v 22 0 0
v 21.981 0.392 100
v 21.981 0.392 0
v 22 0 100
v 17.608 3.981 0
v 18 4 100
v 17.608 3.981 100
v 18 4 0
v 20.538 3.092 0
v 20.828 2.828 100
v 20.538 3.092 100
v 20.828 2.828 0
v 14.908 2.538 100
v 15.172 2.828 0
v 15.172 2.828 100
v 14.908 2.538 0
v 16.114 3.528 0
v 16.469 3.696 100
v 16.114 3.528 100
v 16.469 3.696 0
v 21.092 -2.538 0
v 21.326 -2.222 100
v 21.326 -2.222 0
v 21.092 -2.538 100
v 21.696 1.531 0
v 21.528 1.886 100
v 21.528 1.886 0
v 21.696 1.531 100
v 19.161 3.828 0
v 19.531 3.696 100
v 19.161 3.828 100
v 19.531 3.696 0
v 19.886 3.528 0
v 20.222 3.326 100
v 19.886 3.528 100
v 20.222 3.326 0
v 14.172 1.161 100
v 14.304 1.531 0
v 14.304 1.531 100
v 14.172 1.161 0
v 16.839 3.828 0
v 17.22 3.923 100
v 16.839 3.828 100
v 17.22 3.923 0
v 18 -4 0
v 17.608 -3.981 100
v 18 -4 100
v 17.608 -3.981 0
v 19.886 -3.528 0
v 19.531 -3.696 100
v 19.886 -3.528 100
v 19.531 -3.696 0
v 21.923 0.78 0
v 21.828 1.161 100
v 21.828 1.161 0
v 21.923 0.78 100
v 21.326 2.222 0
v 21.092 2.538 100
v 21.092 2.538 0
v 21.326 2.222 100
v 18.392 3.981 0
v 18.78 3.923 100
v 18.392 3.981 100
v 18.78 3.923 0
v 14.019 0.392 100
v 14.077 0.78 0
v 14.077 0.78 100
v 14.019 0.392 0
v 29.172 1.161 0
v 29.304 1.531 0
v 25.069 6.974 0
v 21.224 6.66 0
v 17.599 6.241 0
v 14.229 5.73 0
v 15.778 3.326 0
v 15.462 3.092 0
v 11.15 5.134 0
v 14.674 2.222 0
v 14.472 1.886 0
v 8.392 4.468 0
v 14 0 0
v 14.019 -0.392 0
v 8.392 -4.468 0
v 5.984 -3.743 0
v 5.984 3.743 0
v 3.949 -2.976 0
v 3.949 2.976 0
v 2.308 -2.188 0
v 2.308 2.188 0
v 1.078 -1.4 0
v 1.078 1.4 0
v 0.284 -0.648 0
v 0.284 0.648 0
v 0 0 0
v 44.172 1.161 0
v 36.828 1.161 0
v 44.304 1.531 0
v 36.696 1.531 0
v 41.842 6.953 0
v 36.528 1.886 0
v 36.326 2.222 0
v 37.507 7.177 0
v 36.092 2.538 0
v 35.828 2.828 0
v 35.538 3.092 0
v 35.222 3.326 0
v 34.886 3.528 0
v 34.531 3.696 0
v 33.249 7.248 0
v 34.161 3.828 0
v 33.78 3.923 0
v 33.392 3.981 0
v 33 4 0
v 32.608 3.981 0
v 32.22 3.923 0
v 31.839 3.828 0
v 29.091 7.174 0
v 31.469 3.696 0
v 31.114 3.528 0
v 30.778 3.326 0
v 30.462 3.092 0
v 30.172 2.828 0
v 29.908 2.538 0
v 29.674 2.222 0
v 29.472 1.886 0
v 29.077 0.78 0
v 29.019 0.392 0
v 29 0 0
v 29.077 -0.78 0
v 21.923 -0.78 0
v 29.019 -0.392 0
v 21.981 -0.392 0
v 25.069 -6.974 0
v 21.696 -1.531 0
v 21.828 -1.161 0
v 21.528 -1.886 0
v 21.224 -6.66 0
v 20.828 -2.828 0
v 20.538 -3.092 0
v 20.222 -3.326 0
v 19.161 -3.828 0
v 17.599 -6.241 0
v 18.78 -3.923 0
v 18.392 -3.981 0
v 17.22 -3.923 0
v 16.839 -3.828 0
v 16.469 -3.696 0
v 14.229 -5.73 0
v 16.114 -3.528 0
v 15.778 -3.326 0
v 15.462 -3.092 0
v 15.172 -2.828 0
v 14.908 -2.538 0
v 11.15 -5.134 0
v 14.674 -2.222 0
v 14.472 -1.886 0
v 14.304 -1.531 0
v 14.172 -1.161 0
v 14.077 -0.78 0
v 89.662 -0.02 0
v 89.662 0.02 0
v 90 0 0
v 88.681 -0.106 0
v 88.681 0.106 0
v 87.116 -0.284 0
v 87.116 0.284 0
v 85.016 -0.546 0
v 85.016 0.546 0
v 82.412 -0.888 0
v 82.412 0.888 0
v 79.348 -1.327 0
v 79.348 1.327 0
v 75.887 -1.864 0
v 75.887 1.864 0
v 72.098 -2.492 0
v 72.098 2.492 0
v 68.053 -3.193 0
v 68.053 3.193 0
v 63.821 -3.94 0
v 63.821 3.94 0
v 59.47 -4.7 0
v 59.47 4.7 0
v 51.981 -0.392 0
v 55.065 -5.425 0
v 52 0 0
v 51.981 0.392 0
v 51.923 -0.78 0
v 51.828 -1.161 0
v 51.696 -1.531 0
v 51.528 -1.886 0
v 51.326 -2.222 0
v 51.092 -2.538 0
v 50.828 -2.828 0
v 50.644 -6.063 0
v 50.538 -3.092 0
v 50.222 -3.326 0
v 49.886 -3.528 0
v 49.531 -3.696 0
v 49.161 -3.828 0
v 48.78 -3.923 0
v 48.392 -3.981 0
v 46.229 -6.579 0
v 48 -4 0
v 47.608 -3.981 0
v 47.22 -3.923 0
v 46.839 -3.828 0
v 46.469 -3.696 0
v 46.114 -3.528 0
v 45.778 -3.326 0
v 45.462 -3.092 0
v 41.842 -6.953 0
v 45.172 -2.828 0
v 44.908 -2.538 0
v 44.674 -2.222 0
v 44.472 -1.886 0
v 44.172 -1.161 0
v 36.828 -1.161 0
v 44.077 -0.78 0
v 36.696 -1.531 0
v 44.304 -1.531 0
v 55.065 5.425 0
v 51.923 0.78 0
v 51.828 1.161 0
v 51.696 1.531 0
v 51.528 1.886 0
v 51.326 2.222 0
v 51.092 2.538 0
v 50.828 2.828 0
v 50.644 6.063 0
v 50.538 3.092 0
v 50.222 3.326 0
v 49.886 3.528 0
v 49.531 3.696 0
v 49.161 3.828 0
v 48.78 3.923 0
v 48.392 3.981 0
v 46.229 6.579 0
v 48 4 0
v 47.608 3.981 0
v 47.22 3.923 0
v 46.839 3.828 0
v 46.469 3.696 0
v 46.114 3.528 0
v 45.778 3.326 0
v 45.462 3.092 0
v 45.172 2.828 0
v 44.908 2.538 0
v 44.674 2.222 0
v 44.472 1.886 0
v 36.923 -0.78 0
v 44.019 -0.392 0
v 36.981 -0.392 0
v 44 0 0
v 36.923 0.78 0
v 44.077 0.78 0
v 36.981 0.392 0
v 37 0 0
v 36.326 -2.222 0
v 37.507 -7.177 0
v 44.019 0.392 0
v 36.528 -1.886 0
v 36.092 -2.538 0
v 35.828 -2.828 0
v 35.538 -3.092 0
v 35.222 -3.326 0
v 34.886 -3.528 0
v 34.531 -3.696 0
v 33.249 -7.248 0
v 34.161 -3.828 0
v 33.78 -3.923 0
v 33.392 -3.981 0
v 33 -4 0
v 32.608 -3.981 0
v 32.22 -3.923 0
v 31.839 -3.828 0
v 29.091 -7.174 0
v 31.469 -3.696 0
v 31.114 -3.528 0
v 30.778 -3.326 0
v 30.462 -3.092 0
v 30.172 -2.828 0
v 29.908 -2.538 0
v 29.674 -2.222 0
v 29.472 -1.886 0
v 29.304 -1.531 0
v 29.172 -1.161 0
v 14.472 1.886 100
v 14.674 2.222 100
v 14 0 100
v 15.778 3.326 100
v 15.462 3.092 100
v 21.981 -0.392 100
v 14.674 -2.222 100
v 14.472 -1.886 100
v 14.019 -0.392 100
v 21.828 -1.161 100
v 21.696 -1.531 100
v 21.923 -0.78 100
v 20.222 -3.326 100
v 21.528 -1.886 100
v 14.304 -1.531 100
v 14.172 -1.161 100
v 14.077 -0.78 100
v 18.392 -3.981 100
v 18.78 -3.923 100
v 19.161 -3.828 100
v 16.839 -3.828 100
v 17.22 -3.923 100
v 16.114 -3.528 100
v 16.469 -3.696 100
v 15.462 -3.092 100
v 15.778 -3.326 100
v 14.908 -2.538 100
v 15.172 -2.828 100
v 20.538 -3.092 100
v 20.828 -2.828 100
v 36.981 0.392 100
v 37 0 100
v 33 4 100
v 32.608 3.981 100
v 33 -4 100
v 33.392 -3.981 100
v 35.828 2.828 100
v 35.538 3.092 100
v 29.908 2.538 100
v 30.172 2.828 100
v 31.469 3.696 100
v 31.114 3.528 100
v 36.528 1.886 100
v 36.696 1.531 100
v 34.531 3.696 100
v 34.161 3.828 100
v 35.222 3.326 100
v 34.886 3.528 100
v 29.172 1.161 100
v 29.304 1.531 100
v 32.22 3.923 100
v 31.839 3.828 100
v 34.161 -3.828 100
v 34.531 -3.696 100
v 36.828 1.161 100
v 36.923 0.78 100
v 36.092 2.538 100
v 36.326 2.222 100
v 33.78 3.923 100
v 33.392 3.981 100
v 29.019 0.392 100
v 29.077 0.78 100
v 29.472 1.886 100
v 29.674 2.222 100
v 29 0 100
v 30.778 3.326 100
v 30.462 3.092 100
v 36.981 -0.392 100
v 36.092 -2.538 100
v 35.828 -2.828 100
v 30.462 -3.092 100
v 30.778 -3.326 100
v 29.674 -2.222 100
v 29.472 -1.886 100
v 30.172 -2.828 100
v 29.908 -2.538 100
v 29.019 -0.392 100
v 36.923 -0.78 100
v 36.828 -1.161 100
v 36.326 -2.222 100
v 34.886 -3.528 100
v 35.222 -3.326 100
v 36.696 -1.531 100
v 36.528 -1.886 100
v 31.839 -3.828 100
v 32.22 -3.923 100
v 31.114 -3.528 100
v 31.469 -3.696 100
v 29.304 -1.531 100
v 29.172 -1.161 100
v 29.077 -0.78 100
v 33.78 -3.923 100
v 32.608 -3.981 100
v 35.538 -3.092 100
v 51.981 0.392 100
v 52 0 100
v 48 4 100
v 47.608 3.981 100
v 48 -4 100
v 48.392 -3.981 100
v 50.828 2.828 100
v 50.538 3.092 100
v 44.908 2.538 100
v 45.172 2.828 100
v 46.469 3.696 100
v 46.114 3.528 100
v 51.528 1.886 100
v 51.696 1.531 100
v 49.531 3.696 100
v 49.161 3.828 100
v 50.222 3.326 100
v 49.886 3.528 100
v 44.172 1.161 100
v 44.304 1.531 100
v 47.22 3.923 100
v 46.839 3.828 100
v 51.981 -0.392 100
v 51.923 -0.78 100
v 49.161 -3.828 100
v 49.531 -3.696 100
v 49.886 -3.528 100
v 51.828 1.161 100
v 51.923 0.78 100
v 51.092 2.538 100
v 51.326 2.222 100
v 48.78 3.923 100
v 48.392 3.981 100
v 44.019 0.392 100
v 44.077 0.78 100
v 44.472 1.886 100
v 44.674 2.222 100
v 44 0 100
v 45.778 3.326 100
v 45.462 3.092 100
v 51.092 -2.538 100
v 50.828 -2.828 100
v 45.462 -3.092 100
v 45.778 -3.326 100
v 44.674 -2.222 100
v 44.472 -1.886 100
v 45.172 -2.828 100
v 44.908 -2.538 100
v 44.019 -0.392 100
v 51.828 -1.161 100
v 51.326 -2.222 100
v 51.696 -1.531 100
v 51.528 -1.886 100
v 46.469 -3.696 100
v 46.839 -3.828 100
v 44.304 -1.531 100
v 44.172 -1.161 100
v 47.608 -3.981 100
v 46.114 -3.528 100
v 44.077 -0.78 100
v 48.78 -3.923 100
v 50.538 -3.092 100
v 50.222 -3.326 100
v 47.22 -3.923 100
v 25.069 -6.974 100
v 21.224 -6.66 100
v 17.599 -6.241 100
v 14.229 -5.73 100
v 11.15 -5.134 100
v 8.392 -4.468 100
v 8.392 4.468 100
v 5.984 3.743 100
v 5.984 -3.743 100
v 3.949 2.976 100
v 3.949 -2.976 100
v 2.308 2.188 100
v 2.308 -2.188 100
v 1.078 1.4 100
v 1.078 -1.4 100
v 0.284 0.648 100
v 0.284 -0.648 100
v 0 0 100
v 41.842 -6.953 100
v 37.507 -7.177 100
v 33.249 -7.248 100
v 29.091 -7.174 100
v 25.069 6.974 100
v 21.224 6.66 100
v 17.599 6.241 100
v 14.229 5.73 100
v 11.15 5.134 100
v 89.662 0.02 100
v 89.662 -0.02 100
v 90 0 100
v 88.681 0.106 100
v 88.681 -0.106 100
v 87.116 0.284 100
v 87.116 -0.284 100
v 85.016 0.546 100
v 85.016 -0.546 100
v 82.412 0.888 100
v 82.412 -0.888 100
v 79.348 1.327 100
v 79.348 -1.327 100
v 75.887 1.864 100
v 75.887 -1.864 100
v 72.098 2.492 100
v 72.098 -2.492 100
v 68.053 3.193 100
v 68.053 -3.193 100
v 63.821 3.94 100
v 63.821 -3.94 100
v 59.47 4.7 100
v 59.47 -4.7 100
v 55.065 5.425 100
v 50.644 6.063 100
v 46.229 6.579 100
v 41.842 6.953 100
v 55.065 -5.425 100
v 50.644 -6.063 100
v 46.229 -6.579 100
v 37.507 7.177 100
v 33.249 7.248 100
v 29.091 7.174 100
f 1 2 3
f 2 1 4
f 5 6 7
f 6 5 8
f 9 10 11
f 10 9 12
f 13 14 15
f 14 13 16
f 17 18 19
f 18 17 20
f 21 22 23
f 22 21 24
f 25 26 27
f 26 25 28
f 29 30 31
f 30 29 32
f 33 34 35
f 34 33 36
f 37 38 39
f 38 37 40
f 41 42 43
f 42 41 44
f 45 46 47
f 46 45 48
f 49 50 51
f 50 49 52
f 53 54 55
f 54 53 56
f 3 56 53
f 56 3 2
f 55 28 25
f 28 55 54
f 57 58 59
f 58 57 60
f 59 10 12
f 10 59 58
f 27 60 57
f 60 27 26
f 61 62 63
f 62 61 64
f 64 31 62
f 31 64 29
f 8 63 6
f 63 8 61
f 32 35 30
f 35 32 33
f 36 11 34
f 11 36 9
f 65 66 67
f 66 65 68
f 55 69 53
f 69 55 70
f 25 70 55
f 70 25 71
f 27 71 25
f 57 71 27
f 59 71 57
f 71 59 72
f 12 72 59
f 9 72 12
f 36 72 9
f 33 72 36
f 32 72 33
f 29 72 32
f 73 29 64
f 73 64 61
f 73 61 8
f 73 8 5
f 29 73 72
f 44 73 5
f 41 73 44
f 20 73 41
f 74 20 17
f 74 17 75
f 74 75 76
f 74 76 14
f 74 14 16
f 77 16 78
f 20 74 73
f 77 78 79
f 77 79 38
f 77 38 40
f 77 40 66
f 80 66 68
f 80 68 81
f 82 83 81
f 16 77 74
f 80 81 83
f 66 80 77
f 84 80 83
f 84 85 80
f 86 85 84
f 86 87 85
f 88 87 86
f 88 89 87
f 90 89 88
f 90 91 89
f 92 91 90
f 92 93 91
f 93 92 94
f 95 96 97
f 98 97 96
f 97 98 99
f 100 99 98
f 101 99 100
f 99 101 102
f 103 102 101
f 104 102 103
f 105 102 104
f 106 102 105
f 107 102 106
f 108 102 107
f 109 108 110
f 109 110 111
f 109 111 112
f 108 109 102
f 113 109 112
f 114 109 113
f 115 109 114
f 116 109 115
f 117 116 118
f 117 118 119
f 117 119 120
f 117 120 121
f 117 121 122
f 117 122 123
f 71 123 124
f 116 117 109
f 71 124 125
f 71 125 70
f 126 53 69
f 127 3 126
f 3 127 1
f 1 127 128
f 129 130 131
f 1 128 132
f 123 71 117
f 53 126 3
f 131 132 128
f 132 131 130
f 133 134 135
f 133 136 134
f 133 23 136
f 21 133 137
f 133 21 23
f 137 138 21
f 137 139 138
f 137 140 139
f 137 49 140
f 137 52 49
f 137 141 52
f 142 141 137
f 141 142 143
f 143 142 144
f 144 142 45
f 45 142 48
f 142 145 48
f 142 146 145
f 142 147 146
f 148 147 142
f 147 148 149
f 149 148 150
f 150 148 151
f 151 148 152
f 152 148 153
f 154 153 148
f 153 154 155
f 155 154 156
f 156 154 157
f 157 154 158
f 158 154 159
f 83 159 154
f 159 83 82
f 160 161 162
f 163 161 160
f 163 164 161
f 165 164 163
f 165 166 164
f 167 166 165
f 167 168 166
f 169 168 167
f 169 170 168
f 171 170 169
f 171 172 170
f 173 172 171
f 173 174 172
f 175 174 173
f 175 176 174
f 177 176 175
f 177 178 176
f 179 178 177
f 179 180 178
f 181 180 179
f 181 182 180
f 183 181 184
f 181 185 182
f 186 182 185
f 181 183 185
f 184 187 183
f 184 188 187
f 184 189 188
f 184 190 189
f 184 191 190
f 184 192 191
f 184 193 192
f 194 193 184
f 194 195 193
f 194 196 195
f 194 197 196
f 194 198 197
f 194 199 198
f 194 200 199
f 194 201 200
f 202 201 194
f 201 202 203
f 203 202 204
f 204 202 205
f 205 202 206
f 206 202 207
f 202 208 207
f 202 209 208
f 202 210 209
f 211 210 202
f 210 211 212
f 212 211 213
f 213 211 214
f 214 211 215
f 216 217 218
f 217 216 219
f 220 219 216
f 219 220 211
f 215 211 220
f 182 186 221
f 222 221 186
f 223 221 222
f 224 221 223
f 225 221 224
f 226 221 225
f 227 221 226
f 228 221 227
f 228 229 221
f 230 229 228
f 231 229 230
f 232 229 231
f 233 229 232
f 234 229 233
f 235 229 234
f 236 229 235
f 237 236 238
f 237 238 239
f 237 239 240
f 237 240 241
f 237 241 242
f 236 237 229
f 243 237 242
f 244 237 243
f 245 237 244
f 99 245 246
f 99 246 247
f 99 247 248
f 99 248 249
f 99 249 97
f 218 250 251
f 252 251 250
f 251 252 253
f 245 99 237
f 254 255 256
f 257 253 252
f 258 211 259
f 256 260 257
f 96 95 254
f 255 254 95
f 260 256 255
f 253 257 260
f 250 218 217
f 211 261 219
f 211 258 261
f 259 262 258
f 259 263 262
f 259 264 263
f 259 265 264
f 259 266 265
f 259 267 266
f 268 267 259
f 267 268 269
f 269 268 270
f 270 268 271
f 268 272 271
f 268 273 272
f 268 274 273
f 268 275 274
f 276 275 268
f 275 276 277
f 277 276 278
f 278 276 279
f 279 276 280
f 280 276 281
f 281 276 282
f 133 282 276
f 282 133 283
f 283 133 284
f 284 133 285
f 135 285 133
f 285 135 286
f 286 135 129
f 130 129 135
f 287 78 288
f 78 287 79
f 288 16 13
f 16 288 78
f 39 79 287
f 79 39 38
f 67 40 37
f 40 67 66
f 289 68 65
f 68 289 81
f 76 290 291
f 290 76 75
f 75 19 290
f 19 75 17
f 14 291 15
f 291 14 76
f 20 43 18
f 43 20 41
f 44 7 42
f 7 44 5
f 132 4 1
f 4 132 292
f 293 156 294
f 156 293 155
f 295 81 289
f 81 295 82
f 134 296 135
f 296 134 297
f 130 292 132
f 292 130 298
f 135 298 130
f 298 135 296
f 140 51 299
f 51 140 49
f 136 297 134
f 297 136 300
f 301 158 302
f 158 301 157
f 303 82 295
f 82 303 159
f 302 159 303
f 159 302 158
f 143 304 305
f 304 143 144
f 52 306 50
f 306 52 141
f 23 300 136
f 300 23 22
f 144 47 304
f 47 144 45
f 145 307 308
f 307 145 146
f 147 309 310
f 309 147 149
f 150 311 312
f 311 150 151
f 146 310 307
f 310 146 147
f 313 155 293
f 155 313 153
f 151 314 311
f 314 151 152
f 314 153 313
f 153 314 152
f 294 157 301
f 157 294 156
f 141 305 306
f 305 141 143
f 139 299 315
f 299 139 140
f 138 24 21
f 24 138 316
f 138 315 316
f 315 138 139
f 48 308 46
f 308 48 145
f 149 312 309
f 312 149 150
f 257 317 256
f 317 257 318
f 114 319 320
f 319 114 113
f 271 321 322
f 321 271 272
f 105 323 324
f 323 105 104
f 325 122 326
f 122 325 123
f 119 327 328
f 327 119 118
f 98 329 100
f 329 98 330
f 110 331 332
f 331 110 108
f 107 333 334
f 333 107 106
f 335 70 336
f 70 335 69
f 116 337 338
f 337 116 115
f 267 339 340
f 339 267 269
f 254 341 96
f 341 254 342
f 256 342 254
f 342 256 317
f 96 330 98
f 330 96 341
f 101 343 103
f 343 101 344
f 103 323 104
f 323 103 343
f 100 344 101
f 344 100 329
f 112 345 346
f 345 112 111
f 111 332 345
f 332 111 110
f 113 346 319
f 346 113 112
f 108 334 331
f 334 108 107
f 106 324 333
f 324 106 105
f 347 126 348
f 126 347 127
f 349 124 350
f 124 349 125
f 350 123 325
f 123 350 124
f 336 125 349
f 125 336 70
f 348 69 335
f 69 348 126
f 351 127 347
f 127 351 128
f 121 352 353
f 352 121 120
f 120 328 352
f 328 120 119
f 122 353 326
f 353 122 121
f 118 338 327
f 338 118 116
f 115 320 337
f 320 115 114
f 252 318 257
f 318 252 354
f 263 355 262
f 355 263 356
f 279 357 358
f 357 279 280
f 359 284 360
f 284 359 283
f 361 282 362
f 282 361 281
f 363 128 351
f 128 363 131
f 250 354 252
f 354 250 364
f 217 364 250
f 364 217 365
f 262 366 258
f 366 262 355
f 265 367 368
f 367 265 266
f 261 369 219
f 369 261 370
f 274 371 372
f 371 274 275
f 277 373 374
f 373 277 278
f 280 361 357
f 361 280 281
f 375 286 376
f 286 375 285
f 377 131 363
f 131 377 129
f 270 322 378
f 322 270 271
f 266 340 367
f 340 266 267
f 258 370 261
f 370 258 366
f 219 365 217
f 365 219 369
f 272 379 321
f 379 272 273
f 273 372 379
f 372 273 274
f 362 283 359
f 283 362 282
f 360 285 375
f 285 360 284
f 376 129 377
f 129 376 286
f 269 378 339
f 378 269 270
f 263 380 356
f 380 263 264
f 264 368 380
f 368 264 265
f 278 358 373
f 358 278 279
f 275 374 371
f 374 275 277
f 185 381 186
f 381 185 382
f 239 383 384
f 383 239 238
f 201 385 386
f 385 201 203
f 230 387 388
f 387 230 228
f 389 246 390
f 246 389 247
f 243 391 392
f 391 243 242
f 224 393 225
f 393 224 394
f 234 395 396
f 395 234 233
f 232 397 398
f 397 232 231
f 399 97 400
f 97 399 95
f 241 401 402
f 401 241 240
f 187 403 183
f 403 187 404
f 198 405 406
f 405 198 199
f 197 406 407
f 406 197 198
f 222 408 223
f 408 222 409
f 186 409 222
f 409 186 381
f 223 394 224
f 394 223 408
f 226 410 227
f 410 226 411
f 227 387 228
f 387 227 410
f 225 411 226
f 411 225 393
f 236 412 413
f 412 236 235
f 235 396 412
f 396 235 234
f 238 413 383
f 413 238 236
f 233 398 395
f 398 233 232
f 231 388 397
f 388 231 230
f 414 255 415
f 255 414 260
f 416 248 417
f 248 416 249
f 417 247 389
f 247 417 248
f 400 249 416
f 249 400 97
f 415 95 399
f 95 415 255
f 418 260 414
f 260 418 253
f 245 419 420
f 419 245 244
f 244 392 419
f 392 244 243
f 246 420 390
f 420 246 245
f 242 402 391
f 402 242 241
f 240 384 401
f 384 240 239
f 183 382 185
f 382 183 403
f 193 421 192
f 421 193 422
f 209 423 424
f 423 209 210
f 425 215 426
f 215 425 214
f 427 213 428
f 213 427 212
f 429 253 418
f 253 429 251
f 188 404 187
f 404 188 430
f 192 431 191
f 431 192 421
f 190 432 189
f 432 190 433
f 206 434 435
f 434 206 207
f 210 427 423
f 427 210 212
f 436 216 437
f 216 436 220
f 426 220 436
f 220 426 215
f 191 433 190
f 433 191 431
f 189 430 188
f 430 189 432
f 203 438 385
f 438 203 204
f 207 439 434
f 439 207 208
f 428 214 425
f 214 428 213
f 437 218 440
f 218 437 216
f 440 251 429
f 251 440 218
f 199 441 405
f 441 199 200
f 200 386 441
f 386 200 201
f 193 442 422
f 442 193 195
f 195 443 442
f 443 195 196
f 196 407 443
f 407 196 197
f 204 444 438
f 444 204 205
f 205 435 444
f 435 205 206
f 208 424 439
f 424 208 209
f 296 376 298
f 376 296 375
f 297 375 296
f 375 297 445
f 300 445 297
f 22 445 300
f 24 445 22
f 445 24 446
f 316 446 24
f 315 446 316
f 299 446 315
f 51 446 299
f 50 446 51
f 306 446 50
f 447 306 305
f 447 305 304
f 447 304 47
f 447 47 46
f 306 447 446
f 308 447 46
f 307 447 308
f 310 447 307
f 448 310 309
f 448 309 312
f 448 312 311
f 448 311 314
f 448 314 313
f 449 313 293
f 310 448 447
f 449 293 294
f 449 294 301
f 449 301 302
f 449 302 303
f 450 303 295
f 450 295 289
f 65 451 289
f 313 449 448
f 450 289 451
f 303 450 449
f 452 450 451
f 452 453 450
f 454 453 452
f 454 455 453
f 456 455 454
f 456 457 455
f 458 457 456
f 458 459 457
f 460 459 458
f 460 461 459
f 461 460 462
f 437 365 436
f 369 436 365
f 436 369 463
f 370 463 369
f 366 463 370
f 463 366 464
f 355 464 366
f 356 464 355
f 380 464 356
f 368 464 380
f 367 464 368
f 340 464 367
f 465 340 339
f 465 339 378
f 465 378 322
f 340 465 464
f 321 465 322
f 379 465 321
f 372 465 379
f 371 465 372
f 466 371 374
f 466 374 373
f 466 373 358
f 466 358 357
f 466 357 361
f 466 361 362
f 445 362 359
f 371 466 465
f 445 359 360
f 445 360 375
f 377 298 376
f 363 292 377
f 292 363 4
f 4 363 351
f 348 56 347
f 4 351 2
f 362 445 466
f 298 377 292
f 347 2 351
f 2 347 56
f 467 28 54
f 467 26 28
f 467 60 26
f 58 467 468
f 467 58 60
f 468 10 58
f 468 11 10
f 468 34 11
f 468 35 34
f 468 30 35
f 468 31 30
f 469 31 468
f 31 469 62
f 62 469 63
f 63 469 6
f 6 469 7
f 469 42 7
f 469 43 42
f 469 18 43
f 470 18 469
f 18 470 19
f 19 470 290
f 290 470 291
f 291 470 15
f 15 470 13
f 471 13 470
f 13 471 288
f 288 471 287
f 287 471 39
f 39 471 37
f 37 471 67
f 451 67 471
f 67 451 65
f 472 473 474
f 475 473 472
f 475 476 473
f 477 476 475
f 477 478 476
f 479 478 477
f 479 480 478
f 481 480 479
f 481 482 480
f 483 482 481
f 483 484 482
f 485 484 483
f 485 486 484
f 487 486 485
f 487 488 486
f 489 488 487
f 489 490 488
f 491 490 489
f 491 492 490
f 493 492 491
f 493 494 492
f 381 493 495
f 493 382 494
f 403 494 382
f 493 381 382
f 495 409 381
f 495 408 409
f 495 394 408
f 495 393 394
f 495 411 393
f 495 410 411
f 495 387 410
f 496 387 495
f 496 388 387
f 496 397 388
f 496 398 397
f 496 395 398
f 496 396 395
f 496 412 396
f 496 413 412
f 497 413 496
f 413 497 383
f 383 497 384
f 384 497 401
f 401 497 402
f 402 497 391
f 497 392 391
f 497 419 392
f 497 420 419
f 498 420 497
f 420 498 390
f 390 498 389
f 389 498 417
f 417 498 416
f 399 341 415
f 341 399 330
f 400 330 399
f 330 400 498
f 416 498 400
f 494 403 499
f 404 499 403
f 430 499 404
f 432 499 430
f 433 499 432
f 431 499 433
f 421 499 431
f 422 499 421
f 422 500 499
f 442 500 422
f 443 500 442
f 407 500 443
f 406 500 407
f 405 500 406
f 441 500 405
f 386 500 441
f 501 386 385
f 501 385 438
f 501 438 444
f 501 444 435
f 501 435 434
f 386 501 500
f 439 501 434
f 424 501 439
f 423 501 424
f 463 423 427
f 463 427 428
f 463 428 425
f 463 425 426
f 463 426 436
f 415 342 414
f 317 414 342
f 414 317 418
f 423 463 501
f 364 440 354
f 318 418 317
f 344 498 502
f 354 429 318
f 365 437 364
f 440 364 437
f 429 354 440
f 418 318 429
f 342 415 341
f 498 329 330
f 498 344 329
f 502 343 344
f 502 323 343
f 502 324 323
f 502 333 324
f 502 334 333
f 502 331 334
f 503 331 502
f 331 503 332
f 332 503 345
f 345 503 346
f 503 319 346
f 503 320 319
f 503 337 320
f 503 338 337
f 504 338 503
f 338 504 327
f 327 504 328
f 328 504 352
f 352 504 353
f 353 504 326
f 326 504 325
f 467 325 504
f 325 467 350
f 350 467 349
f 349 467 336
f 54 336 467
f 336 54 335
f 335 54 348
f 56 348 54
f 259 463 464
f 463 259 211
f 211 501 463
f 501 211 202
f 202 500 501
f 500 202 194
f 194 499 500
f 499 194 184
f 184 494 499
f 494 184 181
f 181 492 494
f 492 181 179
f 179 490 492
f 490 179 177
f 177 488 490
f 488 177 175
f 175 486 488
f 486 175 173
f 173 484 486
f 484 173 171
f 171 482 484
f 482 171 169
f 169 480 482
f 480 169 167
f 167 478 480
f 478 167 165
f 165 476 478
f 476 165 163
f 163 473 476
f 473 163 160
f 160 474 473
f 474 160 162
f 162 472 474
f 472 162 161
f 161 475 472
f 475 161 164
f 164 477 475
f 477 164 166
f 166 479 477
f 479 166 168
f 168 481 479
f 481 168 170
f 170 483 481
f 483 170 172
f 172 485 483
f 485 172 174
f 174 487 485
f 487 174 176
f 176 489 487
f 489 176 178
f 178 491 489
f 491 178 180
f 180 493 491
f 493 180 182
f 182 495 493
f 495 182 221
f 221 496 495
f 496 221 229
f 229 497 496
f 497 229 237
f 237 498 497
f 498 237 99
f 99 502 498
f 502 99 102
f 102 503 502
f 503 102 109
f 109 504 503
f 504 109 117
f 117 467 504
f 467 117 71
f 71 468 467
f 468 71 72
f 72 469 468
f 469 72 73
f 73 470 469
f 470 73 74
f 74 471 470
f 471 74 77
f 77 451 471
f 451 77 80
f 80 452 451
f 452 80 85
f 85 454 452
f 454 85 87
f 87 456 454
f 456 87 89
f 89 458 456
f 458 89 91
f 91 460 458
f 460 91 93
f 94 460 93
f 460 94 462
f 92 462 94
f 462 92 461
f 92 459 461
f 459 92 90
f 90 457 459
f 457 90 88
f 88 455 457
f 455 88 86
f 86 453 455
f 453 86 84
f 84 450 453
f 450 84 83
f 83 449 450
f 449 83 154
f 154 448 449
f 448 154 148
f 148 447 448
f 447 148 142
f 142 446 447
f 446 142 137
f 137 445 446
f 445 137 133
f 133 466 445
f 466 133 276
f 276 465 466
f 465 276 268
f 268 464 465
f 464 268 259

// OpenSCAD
$fn=64;
peiceHeight = 100;
peiceLength = 50;

holeSize = 4;
holeSpacing = 15;
holeOffset = 18;
numHoles = 3;

// points for naca fin taken from here:
/// http://chaaawa.com/airfoils/export.cgi?f=e837
e837_points = [[1000,0],[996.25,0.22],[985.3399,1.18],[967.95,3.16],[944.62,6.07],[915.69,9.87],[881.64,14.74],[843.19,20.71],[801.09,27.69],[756.15,35.48],[709.12,43.78],[660.78,52.22],[611.83,60.28],[562.71,67.37],[513.65,73.1],[464.91,77.26],[416.74,79.75],[369.43,80.53],[323.23,79.71],[278.54,77.49],[235.82,74],[195.54,69.35],[158.1,63.67],[123.89,57.05],[93.25,49.6399],[66.4899,41.59],[43.88,33.07],[25.64,24.3099],[11.98,15.56],[3.16,7.2],[0,0],[3.16,-7.2],[11.98,-15.56],[25.64,-24.31],[43.88,-33.07],[66.4899,-41.59],[93.25,-49.64],[123.89,-57.05],[158.1,-63.67],[195.54,-69.35],[235.82,-74],[278.54,-77.49],[323.23,-79.71],[369.43,-80.53],[416.74,-79.75],[464.91,-77.26],[513.65,-73.1],[562.71,-67.37],[611.83,-60.28],[660.78,-52.22],[709.12,-43.78],[756.15,-35.48],[801.09,-27.69],[843.19,-20.71],[881.64,-14.74],[915.69,-9.87],[944.62,-6.07],[967.95,-3.16],[985.3399,-1.18],[996.25,-0.22]];

difference() {   

    linear_extrude(height=peiceHeight)
    scale([peiceLength, peiceLength])
    scale (0.0018)
    polygon(points=e837_points);

    // Create cuts for support to go through.
    for(i = [0 : numHoles -1])
    {
        translate([holeOffset + holeSpacing * i, 0,0])
        cylinder(h= peiceHeight + 1 , r = holeSize);
    }
}
